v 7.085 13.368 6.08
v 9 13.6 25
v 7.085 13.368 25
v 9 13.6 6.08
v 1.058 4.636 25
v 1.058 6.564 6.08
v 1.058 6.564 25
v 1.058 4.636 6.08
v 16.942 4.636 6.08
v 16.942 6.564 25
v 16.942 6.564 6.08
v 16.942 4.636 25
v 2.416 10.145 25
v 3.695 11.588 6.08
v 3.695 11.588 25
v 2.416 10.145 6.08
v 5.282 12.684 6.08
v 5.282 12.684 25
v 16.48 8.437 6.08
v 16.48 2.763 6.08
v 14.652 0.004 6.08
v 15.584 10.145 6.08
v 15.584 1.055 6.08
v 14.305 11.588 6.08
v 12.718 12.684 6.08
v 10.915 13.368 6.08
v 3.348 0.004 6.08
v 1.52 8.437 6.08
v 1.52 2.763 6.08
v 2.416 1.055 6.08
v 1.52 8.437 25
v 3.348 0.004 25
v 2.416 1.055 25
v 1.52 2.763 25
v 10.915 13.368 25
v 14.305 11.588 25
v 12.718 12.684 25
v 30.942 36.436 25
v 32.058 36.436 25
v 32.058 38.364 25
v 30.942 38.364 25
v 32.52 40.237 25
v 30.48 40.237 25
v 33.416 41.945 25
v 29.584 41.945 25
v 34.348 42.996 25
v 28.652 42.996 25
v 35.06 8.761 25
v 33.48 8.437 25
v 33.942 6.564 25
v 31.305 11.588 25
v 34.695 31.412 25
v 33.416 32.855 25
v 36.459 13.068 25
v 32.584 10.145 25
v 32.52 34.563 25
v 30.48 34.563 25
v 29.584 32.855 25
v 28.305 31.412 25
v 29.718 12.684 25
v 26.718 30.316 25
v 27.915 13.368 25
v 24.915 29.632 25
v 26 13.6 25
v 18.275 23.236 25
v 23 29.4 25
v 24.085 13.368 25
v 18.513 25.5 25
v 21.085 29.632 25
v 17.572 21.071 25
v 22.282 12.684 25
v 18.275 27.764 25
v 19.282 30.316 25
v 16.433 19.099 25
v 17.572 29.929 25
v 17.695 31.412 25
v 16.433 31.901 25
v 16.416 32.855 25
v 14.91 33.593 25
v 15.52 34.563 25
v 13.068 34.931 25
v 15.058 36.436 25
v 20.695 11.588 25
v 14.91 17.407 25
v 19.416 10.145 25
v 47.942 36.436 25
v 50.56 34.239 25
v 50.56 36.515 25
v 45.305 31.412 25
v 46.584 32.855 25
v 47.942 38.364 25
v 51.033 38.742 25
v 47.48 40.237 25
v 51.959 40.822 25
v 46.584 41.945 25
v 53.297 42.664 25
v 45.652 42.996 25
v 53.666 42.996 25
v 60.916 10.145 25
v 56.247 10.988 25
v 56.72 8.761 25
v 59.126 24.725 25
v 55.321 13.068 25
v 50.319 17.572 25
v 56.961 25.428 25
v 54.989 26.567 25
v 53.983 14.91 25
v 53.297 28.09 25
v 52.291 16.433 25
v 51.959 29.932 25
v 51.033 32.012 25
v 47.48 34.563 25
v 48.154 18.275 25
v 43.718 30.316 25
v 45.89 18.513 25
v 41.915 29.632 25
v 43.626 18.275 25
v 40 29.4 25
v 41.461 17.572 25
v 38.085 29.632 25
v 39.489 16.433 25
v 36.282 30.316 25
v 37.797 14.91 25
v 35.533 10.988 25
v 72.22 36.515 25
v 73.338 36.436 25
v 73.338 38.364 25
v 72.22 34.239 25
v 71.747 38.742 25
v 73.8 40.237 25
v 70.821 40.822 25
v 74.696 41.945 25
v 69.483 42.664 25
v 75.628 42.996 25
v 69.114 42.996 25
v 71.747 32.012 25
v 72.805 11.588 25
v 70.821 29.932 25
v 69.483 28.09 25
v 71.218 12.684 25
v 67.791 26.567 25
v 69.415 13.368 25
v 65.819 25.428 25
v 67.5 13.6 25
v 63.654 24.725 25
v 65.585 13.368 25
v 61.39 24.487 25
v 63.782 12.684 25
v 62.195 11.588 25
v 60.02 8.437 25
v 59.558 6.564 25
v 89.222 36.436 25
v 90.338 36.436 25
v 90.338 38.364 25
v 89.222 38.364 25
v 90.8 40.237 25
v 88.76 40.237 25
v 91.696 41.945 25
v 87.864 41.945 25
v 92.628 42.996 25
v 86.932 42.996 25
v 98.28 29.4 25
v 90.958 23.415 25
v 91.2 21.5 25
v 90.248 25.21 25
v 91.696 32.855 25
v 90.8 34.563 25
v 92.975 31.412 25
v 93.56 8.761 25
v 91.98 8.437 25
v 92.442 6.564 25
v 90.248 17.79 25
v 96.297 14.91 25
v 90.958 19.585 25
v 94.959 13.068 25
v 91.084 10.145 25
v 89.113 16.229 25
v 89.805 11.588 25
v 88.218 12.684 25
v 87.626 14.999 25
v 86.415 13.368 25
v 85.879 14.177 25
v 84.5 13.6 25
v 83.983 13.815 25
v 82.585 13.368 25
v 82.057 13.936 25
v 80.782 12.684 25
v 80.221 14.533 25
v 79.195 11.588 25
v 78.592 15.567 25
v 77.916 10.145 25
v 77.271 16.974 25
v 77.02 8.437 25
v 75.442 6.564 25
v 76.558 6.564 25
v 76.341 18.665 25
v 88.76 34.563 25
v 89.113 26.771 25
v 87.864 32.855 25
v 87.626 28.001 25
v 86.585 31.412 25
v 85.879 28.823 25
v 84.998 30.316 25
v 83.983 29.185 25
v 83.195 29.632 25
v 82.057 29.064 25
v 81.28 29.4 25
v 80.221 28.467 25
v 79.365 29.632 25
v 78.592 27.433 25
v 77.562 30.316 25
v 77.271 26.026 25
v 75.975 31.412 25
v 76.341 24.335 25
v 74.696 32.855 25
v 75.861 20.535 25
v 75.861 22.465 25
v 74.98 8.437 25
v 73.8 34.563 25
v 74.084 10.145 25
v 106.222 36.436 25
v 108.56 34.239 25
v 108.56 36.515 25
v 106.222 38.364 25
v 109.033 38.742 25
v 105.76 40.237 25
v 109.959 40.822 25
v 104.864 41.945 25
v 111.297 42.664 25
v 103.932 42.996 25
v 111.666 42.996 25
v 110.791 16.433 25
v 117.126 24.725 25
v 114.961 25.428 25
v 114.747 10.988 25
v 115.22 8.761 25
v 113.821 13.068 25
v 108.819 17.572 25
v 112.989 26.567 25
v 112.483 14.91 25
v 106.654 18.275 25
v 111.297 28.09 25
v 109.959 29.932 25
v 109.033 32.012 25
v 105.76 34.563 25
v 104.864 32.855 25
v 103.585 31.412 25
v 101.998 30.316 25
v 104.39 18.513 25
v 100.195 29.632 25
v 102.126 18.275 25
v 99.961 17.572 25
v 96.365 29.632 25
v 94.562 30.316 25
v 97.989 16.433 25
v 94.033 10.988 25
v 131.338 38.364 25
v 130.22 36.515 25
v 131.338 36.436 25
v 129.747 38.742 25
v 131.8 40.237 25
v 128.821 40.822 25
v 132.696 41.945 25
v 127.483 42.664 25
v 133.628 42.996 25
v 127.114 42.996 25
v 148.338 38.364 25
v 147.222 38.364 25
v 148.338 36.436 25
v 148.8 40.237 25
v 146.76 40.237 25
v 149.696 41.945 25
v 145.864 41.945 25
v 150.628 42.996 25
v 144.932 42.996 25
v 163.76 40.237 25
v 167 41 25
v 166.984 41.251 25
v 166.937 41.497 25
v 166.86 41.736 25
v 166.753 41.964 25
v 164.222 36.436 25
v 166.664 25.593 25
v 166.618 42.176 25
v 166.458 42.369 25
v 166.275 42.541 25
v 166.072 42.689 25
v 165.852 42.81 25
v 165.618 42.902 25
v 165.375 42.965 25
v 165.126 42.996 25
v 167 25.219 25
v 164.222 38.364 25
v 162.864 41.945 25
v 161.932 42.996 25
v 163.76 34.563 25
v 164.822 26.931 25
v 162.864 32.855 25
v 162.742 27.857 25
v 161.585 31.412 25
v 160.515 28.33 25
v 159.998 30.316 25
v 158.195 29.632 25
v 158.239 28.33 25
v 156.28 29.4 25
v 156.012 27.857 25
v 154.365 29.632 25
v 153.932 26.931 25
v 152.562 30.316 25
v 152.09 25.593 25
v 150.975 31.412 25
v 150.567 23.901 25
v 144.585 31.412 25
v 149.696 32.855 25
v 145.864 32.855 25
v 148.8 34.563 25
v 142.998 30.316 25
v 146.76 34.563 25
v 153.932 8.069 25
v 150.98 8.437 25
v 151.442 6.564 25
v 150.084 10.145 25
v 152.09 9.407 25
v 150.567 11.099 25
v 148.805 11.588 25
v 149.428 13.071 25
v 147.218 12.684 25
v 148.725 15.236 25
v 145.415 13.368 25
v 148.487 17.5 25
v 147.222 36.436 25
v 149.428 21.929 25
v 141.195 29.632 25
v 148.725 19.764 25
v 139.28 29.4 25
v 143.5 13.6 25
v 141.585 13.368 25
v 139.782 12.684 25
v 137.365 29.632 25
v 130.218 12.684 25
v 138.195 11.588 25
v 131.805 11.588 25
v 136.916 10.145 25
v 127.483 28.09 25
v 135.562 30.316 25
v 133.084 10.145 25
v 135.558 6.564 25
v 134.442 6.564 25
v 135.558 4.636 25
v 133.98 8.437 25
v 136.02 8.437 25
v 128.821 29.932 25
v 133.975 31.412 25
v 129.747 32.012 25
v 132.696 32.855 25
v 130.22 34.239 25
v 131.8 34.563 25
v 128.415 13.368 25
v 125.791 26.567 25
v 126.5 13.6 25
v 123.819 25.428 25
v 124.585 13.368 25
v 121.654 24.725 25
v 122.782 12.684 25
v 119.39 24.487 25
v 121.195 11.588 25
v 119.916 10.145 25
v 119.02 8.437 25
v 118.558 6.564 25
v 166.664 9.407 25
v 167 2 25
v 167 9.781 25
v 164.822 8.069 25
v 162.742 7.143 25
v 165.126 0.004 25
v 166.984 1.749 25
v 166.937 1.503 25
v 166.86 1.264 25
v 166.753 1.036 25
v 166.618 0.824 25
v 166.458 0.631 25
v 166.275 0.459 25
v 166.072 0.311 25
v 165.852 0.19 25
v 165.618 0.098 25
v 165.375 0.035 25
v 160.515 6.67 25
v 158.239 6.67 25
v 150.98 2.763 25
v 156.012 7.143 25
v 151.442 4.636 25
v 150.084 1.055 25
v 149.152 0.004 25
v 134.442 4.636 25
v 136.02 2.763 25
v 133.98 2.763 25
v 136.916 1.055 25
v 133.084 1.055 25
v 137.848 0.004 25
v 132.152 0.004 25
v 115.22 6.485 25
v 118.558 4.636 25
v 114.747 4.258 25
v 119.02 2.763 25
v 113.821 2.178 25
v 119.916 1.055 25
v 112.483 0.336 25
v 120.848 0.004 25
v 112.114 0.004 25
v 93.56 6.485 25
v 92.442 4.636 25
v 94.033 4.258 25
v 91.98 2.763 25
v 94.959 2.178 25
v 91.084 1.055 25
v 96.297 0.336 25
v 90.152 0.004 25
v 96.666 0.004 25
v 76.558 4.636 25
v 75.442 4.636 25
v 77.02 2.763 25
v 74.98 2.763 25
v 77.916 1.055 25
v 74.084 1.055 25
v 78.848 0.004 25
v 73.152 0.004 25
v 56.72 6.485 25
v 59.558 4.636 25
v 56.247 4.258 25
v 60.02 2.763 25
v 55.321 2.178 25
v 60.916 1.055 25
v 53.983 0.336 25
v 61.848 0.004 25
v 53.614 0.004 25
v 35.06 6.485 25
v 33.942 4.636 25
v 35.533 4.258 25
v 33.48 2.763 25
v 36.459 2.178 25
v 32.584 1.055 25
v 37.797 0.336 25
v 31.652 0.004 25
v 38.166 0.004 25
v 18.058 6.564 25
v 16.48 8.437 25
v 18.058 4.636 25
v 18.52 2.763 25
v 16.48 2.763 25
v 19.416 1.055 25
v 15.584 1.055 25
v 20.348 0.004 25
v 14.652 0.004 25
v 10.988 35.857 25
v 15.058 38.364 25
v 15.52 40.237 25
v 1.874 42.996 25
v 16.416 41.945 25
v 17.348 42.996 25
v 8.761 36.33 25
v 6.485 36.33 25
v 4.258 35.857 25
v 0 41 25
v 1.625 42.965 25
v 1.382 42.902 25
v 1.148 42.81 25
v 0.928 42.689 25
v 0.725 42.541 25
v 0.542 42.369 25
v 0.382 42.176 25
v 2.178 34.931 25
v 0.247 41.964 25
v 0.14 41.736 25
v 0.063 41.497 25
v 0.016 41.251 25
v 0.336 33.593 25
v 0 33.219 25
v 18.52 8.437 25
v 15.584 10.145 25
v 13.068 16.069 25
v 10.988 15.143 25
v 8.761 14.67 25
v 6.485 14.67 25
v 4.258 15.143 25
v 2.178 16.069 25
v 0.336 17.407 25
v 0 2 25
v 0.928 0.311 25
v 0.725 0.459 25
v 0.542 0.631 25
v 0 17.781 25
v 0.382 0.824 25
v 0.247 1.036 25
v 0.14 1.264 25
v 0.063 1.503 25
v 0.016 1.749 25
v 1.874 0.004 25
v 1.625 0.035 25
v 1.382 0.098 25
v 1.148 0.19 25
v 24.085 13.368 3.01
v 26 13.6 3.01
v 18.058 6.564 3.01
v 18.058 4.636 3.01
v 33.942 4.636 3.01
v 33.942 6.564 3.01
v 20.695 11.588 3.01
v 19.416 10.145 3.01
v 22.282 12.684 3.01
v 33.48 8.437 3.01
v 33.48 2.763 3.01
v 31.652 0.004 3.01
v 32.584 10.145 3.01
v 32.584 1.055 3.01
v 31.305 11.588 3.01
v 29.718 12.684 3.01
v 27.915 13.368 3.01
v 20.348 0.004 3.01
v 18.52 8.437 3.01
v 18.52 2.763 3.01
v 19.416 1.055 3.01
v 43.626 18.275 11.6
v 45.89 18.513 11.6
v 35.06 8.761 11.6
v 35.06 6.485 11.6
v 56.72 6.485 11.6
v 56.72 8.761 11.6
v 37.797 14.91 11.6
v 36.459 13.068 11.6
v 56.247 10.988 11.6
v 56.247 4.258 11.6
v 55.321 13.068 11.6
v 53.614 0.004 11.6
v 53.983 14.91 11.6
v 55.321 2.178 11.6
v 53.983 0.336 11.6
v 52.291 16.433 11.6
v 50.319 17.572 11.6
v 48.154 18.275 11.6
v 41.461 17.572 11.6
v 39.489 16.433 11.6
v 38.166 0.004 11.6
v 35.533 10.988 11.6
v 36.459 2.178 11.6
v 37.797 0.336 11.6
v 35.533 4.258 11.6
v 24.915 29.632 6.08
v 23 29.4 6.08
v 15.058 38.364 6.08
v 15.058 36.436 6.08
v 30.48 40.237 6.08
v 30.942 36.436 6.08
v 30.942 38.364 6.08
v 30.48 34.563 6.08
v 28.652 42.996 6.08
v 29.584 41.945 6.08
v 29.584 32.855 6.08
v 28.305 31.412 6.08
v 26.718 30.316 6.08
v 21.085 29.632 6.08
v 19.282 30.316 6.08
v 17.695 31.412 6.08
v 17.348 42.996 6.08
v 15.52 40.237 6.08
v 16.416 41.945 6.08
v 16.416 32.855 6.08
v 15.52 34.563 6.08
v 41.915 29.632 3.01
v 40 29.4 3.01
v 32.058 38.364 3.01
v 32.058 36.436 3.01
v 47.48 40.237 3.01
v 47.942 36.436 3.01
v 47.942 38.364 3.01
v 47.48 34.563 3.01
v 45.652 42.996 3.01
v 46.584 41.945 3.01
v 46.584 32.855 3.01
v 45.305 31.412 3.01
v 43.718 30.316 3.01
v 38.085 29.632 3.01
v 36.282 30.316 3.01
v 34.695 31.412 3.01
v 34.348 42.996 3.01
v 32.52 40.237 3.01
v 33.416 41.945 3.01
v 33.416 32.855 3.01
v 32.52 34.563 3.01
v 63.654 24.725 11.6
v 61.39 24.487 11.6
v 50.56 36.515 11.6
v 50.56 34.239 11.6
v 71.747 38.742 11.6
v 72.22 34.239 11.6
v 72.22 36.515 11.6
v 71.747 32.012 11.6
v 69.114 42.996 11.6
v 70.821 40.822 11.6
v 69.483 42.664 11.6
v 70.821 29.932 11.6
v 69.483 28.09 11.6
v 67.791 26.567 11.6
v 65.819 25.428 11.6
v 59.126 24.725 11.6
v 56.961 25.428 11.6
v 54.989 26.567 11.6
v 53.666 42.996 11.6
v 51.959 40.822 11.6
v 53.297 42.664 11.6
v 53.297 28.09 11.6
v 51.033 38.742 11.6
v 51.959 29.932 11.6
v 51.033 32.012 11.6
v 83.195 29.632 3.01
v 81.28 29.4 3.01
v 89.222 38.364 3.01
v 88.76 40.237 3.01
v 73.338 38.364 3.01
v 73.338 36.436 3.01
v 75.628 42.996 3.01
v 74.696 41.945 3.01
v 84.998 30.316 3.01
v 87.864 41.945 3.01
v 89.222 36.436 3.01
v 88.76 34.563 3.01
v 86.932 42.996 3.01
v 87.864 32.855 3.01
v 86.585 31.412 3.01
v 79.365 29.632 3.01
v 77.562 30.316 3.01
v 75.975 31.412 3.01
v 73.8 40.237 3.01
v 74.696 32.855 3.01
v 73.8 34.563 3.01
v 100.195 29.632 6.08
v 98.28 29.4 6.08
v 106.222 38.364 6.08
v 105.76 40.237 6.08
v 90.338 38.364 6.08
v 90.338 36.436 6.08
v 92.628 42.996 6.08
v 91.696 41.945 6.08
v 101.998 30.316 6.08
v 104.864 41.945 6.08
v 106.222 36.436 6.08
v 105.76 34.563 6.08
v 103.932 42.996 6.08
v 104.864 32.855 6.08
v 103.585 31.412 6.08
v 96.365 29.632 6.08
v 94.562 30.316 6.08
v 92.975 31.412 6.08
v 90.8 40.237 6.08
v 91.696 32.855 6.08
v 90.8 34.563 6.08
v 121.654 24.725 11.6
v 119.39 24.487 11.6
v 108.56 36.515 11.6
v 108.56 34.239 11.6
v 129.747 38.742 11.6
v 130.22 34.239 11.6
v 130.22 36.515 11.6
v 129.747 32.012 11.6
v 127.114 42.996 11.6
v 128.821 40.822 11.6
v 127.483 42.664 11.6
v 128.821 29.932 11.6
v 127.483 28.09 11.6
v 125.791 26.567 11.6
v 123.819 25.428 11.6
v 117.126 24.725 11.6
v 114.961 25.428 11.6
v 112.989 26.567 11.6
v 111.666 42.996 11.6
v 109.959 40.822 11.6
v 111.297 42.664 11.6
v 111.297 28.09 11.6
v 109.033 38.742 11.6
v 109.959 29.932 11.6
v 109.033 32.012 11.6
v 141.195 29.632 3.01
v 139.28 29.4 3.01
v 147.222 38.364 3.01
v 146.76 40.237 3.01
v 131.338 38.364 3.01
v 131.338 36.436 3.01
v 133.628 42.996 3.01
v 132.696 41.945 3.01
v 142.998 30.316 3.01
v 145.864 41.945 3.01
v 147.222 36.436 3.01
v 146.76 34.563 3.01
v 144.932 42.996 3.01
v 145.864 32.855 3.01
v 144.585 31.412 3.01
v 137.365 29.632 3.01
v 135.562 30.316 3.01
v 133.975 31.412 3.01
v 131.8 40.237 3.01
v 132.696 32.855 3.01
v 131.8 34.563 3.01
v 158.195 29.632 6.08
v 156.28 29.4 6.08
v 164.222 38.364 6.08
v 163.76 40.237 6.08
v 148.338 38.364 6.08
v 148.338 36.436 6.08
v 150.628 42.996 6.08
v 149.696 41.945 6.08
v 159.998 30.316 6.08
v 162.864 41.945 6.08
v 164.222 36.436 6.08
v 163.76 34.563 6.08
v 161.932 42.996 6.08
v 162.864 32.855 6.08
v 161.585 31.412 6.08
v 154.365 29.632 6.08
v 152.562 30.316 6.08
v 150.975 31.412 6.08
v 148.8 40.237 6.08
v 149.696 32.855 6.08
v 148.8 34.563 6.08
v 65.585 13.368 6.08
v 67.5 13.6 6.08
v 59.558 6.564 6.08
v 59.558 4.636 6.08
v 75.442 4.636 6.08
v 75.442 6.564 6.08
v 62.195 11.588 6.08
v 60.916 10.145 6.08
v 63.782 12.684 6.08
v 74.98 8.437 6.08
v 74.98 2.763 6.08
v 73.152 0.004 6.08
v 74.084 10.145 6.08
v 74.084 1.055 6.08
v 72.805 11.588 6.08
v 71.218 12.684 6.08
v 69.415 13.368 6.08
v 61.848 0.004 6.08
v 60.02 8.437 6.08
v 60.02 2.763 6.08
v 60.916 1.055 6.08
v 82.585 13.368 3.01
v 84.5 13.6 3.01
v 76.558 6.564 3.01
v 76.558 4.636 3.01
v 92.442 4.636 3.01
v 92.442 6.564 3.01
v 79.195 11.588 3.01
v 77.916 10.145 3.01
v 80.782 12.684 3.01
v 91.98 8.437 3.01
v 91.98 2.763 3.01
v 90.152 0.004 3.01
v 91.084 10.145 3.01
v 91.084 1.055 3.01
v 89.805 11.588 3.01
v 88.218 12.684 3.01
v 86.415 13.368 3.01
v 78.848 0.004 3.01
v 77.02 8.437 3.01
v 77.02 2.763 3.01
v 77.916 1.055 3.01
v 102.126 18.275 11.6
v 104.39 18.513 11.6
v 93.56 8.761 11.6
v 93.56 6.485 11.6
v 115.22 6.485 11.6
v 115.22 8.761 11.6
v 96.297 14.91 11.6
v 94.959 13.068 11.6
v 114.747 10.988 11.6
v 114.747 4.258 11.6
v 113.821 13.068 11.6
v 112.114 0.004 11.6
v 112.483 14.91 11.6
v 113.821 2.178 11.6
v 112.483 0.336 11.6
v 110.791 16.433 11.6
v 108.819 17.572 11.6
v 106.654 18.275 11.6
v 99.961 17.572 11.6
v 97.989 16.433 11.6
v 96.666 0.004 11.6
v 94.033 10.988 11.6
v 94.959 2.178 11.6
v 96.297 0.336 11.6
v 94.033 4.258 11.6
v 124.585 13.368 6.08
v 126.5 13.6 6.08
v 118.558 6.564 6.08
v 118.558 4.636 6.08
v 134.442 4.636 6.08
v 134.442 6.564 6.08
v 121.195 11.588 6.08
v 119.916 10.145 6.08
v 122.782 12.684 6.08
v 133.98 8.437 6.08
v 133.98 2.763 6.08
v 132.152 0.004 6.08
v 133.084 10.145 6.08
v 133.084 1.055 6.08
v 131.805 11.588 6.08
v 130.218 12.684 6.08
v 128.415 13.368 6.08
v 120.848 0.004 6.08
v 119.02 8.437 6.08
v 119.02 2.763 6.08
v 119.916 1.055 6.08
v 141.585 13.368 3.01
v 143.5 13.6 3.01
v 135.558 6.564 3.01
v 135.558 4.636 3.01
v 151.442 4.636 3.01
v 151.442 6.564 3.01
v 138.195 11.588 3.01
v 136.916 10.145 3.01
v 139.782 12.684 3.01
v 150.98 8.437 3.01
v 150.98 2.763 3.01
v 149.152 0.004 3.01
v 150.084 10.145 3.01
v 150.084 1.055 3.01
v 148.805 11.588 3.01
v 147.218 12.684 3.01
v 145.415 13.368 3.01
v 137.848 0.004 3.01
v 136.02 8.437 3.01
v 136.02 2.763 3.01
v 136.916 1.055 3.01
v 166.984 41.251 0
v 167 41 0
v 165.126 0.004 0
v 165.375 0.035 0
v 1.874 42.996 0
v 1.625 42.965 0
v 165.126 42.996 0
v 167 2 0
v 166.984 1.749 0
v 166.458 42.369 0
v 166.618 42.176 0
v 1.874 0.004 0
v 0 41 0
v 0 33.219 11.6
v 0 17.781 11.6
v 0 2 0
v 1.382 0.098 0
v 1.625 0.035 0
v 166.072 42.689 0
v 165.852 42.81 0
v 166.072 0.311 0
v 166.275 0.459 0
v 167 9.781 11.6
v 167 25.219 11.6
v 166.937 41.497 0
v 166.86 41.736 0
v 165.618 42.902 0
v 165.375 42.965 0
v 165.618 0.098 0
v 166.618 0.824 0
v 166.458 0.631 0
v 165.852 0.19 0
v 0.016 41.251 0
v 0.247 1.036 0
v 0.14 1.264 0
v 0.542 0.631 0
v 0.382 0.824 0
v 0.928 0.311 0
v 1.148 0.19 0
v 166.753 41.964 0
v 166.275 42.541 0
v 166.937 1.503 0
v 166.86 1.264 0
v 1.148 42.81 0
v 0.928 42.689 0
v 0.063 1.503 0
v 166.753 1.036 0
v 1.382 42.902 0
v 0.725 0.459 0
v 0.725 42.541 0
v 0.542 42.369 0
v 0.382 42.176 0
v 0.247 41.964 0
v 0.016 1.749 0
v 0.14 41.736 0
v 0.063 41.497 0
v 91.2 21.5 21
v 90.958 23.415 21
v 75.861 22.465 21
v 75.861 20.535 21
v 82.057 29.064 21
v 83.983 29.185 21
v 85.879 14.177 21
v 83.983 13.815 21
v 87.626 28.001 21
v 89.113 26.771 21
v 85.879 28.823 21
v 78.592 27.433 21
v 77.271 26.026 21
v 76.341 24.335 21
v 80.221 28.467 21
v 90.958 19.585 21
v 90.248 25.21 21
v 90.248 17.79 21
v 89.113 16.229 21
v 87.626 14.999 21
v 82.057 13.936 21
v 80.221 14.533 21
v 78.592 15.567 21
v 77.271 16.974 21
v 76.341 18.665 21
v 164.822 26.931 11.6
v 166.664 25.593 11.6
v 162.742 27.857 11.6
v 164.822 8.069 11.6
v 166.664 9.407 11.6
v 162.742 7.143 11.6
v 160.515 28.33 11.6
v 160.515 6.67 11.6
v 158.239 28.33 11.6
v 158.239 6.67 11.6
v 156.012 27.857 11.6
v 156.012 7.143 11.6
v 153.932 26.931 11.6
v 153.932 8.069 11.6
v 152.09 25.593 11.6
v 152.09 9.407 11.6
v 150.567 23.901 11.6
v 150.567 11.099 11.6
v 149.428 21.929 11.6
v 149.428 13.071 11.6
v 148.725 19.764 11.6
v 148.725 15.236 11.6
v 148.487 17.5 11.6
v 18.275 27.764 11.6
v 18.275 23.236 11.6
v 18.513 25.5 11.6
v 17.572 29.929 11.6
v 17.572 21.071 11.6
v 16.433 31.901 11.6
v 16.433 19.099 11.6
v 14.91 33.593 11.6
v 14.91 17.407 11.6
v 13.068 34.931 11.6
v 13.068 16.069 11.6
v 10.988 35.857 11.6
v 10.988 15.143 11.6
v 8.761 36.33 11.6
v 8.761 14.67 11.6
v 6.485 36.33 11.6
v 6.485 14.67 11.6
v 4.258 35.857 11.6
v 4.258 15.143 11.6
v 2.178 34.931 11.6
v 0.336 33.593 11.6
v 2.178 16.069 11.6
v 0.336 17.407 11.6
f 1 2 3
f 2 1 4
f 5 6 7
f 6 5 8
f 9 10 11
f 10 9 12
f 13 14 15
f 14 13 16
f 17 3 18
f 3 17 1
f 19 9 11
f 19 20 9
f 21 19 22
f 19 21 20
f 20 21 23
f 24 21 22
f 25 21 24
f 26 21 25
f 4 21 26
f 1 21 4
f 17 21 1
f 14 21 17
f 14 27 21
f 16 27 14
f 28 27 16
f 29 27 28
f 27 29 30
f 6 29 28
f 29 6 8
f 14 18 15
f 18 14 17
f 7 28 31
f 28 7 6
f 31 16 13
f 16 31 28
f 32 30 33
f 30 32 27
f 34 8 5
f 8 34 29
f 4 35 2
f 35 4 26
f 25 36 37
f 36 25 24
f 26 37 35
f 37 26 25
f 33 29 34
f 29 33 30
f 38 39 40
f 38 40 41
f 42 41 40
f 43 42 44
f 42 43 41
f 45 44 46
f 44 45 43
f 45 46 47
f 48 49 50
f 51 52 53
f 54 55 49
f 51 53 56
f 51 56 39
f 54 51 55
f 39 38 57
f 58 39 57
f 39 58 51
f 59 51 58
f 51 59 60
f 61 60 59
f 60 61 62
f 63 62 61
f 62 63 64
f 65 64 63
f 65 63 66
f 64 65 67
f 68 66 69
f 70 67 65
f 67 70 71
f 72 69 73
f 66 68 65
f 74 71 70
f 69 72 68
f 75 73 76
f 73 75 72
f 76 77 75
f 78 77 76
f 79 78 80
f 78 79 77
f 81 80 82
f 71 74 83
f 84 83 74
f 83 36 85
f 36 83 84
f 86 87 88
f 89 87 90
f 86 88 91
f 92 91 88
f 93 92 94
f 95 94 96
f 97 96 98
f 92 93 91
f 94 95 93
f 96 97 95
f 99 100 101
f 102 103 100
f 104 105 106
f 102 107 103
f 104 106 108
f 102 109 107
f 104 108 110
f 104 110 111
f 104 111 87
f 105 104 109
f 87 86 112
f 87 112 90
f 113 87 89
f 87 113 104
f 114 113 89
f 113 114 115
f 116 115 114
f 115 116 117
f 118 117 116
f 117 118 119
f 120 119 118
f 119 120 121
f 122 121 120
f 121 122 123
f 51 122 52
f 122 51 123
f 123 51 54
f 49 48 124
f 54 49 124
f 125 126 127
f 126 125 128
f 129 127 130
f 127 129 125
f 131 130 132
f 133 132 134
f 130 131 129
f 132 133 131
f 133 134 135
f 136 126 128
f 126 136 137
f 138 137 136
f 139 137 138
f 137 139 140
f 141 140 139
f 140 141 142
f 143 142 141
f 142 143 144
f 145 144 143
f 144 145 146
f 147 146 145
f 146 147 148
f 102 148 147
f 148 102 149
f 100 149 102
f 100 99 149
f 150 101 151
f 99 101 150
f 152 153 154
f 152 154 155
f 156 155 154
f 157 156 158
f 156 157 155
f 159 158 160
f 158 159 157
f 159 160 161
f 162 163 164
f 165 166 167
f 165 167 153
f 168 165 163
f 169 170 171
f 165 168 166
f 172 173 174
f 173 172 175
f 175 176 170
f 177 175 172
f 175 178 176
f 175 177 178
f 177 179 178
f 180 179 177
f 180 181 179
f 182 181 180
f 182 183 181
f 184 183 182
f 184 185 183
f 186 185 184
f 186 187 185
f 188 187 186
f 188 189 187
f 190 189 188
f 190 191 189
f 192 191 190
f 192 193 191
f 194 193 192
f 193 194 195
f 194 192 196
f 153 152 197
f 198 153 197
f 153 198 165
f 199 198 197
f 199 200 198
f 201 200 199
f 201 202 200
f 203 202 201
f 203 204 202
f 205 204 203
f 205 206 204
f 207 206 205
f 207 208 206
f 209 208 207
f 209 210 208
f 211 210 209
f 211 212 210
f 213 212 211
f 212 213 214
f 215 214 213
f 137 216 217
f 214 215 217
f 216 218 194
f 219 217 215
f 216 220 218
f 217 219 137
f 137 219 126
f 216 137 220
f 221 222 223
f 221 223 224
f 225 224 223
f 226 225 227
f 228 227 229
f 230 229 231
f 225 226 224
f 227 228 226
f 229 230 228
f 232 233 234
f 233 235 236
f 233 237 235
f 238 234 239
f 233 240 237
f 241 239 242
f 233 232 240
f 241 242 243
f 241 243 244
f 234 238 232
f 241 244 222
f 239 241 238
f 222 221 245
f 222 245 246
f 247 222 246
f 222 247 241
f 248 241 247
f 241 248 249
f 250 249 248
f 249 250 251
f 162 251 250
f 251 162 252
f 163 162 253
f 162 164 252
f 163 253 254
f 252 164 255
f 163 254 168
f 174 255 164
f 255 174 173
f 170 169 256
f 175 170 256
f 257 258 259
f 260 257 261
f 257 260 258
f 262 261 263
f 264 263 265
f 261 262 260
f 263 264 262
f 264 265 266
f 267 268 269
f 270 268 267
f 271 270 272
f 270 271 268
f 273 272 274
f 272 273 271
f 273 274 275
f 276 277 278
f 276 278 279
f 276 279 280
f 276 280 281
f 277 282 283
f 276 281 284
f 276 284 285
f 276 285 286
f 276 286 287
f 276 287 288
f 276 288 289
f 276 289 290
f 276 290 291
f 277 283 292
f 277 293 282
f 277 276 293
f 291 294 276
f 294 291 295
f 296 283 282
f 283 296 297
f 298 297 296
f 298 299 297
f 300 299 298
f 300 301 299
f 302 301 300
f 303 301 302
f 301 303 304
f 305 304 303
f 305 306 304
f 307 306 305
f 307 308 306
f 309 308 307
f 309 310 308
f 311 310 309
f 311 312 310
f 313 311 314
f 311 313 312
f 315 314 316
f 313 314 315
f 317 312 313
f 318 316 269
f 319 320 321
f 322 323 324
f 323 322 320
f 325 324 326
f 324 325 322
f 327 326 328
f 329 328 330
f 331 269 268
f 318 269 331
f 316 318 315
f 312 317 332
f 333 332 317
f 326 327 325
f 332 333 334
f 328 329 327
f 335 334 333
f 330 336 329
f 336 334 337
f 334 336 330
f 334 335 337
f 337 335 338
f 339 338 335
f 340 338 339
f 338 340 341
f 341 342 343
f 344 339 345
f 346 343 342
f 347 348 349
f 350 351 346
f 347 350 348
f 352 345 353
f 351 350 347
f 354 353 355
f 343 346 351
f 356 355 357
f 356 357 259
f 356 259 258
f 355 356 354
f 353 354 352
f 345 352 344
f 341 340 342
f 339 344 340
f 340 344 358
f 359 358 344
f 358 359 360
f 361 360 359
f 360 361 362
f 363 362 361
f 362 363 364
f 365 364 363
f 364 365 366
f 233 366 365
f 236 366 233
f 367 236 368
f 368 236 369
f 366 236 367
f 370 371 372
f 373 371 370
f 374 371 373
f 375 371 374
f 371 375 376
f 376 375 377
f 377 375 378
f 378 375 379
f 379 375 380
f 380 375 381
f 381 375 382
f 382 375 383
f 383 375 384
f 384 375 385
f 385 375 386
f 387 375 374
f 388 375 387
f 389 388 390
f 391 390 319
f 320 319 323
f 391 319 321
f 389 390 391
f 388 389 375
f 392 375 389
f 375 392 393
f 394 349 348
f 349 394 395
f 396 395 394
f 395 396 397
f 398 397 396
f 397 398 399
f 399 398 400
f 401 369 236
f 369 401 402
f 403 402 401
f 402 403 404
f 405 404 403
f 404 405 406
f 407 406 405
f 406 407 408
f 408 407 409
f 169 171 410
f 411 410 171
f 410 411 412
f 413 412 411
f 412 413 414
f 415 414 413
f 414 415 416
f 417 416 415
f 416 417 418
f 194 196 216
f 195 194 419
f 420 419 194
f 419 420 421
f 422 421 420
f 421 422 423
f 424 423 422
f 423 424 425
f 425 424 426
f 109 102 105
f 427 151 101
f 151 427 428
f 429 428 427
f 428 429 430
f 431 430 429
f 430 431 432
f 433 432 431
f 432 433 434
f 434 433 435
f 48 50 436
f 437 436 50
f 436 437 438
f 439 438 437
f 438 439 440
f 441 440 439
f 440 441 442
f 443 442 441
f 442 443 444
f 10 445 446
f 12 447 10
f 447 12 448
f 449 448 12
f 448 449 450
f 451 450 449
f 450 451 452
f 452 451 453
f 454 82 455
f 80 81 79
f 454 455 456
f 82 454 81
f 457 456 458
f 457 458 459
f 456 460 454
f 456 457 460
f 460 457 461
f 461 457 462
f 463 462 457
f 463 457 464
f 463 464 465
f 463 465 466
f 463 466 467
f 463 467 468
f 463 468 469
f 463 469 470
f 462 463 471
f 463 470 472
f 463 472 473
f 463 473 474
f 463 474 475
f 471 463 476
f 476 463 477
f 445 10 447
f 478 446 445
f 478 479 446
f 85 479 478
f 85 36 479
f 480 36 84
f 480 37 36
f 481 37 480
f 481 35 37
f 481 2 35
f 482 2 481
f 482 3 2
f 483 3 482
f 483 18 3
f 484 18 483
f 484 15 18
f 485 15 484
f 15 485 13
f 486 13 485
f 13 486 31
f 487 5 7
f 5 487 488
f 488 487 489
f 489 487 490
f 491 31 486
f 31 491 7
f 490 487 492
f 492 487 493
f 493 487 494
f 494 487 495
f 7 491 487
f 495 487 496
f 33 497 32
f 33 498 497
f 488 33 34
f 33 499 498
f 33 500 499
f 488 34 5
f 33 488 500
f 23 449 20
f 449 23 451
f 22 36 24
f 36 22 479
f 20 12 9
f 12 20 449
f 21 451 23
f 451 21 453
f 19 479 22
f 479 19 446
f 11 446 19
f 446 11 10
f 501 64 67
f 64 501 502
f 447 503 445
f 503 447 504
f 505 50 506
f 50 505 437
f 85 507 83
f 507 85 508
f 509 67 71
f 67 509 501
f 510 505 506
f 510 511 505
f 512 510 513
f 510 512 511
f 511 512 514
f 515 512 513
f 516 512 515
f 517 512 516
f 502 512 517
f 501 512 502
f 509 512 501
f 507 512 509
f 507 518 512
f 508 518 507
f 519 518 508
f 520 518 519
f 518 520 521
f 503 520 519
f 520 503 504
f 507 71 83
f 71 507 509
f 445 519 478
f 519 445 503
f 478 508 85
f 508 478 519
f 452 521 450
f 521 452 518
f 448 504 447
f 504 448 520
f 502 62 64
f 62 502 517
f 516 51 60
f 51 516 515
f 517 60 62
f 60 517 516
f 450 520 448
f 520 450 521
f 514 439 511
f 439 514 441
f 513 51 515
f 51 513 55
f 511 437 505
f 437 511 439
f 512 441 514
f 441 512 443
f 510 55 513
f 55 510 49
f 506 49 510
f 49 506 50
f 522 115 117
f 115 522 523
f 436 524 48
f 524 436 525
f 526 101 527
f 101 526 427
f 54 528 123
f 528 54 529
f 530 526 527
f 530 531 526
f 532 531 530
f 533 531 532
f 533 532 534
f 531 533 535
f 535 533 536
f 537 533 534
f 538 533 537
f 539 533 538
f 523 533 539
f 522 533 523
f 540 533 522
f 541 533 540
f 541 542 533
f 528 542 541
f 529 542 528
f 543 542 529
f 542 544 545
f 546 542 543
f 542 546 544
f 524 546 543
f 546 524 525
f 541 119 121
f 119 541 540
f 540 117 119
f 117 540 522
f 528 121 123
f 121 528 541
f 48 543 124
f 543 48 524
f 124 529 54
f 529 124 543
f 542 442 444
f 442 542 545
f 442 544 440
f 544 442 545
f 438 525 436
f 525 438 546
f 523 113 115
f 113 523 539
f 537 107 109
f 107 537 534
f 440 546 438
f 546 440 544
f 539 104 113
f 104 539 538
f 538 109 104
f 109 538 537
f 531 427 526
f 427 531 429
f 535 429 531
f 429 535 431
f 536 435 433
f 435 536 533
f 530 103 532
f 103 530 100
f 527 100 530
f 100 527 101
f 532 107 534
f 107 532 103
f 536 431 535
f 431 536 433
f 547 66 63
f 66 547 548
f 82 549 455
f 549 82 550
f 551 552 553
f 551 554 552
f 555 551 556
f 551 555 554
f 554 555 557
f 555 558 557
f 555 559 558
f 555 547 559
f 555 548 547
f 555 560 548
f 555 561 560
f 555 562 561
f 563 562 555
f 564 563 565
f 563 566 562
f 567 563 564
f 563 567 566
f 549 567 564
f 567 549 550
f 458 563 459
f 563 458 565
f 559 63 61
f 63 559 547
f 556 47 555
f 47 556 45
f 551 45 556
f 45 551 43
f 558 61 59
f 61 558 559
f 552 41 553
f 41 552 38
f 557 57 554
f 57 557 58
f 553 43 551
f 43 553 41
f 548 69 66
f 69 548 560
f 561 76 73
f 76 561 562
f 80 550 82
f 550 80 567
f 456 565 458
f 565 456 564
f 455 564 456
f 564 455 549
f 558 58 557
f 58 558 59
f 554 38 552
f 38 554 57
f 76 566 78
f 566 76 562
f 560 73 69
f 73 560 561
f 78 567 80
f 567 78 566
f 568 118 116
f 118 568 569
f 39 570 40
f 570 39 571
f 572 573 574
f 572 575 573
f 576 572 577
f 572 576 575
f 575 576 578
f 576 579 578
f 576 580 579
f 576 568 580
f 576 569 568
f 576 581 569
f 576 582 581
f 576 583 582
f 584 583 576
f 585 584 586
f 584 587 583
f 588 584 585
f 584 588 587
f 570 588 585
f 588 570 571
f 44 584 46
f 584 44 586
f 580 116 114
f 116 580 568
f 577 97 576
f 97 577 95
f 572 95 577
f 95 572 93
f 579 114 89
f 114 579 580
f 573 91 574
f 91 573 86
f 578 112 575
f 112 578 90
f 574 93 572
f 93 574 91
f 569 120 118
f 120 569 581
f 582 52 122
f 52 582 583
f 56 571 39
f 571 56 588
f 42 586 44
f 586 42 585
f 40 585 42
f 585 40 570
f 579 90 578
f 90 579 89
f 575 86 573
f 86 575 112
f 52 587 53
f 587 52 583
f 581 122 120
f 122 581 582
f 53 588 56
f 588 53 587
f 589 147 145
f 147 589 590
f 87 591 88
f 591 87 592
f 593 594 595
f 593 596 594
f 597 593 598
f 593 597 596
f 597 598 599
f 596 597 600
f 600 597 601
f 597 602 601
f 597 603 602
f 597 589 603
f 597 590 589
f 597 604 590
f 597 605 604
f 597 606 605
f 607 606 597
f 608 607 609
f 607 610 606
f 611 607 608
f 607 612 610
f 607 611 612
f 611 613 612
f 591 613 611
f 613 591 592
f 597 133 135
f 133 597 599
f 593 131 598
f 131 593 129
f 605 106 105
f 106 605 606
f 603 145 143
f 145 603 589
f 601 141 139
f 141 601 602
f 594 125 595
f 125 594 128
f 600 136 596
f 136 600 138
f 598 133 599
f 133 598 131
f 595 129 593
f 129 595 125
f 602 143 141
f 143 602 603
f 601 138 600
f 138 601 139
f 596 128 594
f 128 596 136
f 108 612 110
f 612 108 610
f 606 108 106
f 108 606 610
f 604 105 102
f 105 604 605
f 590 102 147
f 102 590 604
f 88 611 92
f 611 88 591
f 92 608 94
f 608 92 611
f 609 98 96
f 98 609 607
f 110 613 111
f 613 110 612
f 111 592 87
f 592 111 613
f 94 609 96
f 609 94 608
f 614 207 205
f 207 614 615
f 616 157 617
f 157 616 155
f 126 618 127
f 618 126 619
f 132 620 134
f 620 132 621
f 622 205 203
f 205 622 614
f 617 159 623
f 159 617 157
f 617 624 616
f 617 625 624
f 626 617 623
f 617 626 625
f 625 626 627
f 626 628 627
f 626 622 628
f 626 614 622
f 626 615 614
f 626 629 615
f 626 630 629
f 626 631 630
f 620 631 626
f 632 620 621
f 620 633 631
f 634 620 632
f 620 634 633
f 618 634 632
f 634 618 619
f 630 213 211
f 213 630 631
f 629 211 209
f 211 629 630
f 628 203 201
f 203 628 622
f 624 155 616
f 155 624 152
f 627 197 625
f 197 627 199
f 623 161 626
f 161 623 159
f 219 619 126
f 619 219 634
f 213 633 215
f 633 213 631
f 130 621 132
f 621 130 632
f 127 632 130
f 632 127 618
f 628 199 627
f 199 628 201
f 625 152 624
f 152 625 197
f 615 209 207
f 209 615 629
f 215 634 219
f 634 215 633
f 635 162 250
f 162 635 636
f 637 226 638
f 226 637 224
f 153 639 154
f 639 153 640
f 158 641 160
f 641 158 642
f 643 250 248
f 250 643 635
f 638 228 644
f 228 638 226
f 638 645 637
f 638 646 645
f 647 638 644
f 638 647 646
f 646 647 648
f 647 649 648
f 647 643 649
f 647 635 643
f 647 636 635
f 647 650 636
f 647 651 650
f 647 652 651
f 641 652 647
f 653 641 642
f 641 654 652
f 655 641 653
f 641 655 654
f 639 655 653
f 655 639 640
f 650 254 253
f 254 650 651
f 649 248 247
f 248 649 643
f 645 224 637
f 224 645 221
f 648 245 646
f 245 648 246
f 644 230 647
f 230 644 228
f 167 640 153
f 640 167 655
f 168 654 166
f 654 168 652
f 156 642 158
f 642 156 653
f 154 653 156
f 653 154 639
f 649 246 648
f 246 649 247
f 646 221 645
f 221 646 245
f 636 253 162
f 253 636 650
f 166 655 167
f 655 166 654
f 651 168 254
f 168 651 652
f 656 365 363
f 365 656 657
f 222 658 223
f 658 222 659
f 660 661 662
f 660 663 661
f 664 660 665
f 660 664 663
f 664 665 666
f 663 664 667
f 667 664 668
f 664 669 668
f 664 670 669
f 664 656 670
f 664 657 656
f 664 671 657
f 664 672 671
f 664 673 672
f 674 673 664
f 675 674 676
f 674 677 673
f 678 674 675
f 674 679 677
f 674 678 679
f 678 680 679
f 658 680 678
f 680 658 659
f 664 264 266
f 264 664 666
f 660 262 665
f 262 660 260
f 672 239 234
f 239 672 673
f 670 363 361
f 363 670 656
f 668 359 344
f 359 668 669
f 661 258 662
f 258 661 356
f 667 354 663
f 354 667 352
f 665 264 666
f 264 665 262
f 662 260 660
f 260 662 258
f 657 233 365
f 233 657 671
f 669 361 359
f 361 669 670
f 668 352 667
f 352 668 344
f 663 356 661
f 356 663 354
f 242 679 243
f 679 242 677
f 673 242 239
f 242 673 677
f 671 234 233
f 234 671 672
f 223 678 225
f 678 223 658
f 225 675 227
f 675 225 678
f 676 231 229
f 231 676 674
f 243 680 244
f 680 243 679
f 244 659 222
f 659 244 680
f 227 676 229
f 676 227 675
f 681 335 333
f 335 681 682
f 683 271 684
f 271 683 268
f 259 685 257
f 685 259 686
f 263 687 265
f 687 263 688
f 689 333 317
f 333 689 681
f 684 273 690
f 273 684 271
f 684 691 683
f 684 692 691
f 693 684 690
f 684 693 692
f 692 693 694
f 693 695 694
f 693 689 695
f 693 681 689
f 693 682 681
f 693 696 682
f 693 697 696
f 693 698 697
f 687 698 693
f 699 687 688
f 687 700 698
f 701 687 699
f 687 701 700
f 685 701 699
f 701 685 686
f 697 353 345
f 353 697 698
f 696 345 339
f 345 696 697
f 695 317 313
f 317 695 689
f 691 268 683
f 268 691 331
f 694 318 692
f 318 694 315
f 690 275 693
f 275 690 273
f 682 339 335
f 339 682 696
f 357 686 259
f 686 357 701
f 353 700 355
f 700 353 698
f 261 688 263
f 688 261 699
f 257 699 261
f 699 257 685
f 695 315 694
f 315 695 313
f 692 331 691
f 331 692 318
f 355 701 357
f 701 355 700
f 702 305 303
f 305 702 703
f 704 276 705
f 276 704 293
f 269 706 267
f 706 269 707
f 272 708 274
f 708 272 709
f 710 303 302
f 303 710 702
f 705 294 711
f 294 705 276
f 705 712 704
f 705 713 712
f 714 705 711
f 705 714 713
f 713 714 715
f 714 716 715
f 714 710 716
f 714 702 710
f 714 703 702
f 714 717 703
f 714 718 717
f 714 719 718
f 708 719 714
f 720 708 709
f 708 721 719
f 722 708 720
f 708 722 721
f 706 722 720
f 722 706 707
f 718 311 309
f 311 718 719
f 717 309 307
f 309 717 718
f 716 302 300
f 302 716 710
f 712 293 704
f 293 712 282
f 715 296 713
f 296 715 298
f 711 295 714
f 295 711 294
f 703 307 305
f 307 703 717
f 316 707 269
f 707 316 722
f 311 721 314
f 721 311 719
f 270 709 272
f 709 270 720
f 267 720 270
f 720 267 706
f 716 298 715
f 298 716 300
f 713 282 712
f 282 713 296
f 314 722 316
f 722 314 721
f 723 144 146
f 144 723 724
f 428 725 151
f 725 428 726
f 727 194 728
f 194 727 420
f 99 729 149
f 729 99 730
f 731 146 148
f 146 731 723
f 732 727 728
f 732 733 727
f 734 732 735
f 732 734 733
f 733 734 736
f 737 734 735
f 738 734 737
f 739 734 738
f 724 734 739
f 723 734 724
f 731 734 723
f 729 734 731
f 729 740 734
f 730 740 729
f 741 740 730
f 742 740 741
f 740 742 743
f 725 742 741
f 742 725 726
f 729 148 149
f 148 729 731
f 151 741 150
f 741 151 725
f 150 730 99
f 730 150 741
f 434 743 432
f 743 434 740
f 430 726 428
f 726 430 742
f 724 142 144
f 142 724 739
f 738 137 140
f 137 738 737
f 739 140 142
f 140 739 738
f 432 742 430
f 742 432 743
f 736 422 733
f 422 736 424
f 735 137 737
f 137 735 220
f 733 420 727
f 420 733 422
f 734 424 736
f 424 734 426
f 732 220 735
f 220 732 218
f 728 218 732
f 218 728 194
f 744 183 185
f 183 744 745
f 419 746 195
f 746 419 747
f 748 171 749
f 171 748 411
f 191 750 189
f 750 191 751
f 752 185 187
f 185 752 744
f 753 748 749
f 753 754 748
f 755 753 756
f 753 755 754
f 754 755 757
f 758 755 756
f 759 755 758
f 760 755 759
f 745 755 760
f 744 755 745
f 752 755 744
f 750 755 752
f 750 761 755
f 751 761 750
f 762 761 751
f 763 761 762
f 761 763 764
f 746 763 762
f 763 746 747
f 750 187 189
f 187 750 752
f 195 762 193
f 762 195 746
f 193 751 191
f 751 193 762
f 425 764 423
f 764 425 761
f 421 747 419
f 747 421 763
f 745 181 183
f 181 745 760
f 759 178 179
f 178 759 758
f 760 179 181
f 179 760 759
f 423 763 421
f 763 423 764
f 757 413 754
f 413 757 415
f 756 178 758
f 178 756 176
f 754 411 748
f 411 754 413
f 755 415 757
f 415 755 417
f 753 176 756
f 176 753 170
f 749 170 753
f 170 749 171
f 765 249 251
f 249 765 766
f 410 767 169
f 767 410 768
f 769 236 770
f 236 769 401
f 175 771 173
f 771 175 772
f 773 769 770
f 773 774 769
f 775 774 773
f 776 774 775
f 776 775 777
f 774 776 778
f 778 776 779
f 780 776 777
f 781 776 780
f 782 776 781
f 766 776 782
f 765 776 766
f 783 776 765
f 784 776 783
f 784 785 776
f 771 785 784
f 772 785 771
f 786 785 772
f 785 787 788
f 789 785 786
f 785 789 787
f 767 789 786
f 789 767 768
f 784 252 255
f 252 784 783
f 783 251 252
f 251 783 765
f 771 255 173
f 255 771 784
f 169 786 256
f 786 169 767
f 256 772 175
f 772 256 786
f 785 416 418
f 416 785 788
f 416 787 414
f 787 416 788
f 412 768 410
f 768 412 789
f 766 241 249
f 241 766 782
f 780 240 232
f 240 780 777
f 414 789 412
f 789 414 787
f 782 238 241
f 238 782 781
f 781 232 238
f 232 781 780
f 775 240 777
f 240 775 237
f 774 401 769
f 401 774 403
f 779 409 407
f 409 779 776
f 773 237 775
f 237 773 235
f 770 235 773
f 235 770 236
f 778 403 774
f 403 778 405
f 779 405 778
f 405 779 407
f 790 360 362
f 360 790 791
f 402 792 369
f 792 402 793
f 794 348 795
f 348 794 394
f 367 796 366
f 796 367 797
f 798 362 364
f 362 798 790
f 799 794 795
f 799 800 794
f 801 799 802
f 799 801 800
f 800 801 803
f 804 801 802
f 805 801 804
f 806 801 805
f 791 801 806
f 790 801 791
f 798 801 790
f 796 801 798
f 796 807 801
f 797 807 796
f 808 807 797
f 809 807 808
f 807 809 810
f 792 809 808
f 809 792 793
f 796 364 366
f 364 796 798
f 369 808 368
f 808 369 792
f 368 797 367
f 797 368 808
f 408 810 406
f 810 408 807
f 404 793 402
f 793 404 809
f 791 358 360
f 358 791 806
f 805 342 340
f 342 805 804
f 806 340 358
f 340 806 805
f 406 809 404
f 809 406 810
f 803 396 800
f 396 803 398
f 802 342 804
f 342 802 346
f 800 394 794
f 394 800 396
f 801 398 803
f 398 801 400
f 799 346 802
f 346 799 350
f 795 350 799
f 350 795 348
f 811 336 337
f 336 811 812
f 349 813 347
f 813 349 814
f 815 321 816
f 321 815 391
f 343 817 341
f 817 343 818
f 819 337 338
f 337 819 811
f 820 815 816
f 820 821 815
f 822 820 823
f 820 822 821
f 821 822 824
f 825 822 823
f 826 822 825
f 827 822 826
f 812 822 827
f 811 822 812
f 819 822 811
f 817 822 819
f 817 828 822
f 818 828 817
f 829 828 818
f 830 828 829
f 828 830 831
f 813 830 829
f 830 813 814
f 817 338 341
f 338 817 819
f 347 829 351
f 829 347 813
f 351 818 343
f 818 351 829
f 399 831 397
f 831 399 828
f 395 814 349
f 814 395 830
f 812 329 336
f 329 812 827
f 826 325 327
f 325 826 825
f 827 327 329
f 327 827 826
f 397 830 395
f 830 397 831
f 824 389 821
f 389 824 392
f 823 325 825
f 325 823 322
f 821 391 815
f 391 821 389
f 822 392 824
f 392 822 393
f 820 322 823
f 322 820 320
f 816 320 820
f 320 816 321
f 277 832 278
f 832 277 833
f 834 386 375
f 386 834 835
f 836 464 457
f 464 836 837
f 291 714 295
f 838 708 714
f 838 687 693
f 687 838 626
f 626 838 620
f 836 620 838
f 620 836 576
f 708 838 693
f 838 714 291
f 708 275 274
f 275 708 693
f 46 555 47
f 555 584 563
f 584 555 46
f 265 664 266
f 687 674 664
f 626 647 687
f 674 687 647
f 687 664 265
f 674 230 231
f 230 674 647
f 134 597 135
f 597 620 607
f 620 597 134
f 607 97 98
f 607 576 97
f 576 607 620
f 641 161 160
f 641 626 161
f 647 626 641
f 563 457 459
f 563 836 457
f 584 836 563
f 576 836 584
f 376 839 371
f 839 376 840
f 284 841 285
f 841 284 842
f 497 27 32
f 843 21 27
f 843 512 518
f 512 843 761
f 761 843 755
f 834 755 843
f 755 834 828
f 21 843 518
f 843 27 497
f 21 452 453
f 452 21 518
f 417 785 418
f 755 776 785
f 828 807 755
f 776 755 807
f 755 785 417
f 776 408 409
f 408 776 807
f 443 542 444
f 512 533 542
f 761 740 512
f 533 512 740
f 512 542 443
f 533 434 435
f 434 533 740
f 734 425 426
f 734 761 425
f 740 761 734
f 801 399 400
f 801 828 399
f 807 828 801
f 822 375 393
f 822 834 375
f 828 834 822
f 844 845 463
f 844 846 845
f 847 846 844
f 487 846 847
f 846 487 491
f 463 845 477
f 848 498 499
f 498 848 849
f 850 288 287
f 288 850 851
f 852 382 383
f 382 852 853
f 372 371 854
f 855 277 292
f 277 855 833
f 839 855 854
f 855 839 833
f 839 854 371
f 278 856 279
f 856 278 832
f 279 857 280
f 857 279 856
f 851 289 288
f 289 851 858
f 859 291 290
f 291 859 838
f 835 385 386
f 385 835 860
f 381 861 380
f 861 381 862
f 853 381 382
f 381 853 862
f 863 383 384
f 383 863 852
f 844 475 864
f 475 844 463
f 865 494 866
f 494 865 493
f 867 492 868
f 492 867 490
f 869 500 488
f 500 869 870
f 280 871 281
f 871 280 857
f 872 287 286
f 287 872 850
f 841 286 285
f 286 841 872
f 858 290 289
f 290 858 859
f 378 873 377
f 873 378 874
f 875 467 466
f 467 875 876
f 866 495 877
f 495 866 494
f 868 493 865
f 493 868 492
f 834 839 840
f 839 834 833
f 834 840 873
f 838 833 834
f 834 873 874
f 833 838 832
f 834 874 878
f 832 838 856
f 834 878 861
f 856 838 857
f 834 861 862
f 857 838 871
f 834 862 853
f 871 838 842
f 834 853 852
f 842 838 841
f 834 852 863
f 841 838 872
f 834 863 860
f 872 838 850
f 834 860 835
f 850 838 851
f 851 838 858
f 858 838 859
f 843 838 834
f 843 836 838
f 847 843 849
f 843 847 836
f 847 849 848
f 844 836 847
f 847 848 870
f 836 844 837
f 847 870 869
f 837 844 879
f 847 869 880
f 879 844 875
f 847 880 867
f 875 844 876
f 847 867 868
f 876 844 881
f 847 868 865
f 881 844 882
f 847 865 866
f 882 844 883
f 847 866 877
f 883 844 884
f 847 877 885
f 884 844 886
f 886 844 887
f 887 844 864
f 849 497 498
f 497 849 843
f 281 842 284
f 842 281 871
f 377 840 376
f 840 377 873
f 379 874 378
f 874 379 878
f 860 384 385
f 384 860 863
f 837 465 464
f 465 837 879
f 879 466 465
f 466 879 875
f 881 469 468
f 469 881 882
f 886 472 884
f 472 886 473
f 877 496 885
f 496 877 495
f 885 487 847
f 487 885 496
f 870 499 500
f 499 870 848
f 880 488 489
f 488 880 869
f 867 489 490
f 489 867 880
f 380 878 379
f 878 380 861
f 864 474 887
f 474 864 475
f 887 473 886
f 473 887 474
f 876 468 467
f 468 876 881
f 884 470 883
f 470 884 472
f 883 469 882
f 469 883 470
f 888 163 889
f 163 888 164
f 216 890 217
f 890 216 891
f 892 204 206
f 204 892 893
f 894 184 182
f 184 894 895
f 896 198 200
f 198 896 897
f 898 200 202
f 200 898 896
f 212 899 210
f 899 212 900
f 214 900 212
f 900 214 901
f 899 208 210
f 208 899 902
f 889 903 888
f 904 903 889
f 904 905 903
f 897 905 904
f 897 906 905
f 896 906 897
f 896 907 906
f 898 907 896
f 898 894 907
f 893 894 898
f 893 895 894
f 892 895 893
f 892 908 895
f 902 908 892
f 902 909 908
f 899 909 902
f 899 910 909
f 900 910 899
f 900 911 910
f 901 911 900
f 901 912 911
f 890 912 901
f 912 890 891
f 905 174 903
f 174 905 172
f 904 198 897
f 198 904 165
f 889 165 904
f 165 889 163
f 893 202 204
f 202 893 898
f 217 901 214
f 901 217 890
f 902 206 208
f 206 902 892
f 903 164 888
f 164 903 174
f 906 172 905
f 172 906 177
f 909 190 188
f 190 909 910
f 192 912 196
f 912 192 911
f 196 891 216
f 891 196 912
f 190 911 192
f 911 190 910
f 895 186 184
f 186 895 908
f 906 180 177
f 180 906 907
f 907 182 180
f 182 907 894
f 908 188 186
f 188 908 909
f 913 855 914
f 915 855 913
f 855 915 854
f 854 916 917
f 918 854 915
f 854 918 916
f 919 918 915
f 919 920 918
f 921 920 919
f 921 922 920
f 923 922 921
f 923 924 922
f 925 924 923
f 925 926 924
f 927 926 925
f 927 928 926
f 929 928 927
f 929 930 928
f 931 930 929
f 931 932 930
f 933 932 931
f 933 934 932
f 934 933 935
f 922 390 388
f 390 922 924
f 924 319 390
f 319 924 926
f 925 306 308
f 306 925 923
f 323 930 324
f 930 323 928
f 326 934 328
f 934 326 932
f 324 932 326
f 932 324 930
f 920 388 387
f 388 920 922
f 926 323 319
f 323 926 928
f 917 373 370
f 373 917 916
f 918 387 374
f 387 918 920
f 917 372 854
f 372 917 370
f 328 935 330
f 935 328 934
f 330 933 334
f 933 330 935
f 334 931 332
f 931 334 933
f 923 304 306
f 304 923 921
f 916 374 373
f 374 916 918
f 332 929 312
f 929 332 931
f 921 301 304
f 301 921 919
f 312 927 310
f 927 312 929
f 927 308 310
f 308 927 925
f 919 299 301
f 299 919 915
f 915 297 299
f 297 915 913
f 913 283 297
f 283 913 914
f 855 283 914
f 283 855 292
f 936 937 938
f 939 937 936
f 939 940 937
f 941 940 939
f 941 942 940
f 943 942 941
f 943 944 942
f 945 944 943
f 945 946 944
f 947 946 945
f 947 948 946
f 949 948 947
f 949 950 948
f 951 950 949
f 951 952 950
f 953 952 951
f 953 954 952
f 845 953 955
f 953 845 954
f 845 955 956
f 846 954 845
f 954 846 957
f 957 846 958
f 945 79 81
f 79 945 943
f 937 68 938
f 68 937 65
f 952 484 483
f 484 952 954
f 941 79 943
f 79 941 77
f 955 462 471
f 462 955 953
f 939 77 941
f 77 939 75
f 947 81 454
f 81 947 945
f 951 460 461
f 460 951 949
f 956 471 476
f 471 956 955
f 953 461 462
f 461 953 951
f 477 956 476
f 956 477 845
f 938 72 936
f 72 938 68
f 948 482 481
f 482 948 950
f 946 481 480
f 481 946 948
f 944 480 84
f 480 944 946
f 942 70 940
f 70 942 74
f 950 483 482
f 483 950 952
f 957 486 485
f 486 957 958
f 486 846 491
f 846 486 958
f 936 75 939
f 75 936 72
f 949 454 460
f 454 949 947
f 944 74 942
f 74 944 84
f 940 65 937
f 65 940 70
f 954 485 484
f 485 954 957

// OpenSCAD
// file: CirclePileLib.scad
module LeftPile(totalHeight, singlePileHeight, singlePileDiameter, pileCount){
    pileHeight = (pileCount * singlePileHeight) + .5;
    offset = singlePileDiameter * .15;
    translate([singlePileDiameter/2 - offset, singlePileDiameter/2, totalHeight - pileHeight])
        cylinder(pileHeight, d=singlePileDiameter);
}

module RightPile(totalHeight, singlePileHeight, singlePileDiameter, pileCount){
    translate([0, singlePileDiameter, 0])
        rotate([0, 0, 180])
            LeftPile(totalHeight, singlePileHeight, singlePileDiameter, pileCount);
}

module BottomPile(totalHeight, singlePileHeight, singlePileDiameter, pileCount){
    translate([singlePileDiameter, 0, 0])
        rotate([0, 0, 90])
            LeftPile(totalHeight, singlePileHeight, singlePileDiameter, pileCount);
}

module TopPile(totalHeight, singlePileHeight, singlePileDiameter, pileCount){
        rotate([0, 0, 270])
            LeftPile(totalHeight, singlePileHeight, singlePileDiameter, pileCount);
}
// main file
length = 167;
width = 43;
height = 25;
wallThickness = 1;
floorThickness = 3;
widthDividers = 3;
lengthDividers = 1;
widthDividerToSkip = -1;

//Based on magnet size:
magnetBaseOuterDiameter = 18;
magnetBaseInnerDiameter = 15.4;
magnetHeight = 4.0;

woodenMarkerDiameter = 14.5 + 1.5;
woodenMarkerHeight = 3.07;
woodenMarkerCount1 = 6;
woodenMarkerCount2 = 7;

cardboardMarkerDiameter = 20.28 + 1.5;
cardboardMarkerHeight = 2.15;
cardboardMarkerCount = 6;

include<CirclePileLib.scad>;


difference(){
    union(){
            $fn=50;
            minkowski()
            {
              translate([2,2,0])
                cube([length-4, width-4, height - 1]);
              cylinder(r=2,h=1);
            }
        }

    translate([length/2, width/2, height - magnetHeight])
        cylinder(magnetHeight, d=magnetBaseInnerDiameter);

    translate([wallThickness, 0, 0]) {
        translate([0, 0, 0])
            BottomPile(height, woodenMarkerHeight, woodenMarkerDiameter, woodenMarkerCount1);
        translate([(wallThickness + woodenMarkerDiameter) * 1, 0, 0])
            BottomPile(height, woodenMarkerHeight, woodenMarkerDiameter, woodenMarkerCount2);
        translate([(wallThickness + woodenMarkerDiameter) * 2, 0, 0])
            BottomPile(height, cardboardMarkerHeight, cardboardMarkerDiameter, cardboardMarkerCount);
    }
    translate([59.5, 0, 0]) {
        translate([0, 0, 0])
            BottomPile(height, woodenMarkerHeight, woodenMarkerDiameter, woodenMarkerCount1);
        translate([(wallThickness + woodenMarkerDiameter) * 1, 0, 0])
            BottomPile(height, woodenMarkerHeight, woodenMarkerDiameter, woodenMarkerCount2);
        translate([(wallThickness + woodenMarkerDiameter) * 2, 0, 0])
            BottomPile(height, cardboardMarkerHeight, cardboardMarkerDiameter, cardboardMarkerCount);
    }
    
    translate([118.5, 0, 0]) {
        translate([0, 0, 0])
            BottomPile(height, woodenMarkerHeight, woodenMarkerDiameter, woodenMarkerCount1);
        translate([(wallThickness + woodenMarkerDiameter) * 1, 0, 0])
            BottomPile(height, woodenMarkerHeight, woodenMarkerDiameter, woodenMarkerCount2);
    }
    translate([length, width/2 - cardboardMarkerDiameter/2 - 4, 0])
        RightPile(height, cardboardMarkerHeight, cardboardMarkerDiameter, cardboardMarkerCount);
    
    translate([0, width/2 - cardboardMarkerDiameter/2 + 4, 0])
        LeftPile(height, cardboardMarkerHeight, cardboardMarkerDiameter, cardboardMarkerCount);
    
    translate([15, width, 0]) {
        translate([0, 0, 0])
            TopPile(height, woodenMarkerHeight, woodenMarkerDiameter, woodenMarkerCount1);
        translate([(wallThickness + woodenMarkerDiameter) * 1, 0, 0])
            TopPile(height, woodenMarkerHeight, woodenMarkerDiameter, woodenMarkerCount2);
    }
    
    translate([50.5, width, 0]) {
        translate([0, 0, 0])
            TopPile(height, cardboardMarkerHeight, cardboardMarkerDiameter, cardboardMarkerCount);
        translate([(wallThickness + cardboardMarkerDiameter) * 1, 0, 0])
            TopPile(height, woodenMarkerHeight, woodenMarkerDiameter, woodenMarkerCount2);
        translate([wallThickness * 2 + woodenMarkerDiameter + cardboardMarkerDiameter, 0, 0])
            TopPile(height, woodenMarkerHeight, woodenMarkerDiameter, woodenMarkerCount1);
    }
    
    translate([108.5, width, 0]) {
        translate([0, 0, 0])
            TopPile(height, cardboardMarkerHeight, cardboardMarkerDiameter, cardboardMarkerCount);
        translate([(wallThickness + cardboardMarkerDiameter) * 1, 0, 0])
            TopPile(height, woodenMarkerHeight, woodenMarkerDiameter, woodenMarkerCount2);
        translate([wallThickness * 2 + woodenMarkerDiameter + cardboardMarkerDiameter, 0, 0])
            TopPile(height, woodenMarkerHeight, woodenMarkerDiameter, woodenMarkerCount1);
    }
}
